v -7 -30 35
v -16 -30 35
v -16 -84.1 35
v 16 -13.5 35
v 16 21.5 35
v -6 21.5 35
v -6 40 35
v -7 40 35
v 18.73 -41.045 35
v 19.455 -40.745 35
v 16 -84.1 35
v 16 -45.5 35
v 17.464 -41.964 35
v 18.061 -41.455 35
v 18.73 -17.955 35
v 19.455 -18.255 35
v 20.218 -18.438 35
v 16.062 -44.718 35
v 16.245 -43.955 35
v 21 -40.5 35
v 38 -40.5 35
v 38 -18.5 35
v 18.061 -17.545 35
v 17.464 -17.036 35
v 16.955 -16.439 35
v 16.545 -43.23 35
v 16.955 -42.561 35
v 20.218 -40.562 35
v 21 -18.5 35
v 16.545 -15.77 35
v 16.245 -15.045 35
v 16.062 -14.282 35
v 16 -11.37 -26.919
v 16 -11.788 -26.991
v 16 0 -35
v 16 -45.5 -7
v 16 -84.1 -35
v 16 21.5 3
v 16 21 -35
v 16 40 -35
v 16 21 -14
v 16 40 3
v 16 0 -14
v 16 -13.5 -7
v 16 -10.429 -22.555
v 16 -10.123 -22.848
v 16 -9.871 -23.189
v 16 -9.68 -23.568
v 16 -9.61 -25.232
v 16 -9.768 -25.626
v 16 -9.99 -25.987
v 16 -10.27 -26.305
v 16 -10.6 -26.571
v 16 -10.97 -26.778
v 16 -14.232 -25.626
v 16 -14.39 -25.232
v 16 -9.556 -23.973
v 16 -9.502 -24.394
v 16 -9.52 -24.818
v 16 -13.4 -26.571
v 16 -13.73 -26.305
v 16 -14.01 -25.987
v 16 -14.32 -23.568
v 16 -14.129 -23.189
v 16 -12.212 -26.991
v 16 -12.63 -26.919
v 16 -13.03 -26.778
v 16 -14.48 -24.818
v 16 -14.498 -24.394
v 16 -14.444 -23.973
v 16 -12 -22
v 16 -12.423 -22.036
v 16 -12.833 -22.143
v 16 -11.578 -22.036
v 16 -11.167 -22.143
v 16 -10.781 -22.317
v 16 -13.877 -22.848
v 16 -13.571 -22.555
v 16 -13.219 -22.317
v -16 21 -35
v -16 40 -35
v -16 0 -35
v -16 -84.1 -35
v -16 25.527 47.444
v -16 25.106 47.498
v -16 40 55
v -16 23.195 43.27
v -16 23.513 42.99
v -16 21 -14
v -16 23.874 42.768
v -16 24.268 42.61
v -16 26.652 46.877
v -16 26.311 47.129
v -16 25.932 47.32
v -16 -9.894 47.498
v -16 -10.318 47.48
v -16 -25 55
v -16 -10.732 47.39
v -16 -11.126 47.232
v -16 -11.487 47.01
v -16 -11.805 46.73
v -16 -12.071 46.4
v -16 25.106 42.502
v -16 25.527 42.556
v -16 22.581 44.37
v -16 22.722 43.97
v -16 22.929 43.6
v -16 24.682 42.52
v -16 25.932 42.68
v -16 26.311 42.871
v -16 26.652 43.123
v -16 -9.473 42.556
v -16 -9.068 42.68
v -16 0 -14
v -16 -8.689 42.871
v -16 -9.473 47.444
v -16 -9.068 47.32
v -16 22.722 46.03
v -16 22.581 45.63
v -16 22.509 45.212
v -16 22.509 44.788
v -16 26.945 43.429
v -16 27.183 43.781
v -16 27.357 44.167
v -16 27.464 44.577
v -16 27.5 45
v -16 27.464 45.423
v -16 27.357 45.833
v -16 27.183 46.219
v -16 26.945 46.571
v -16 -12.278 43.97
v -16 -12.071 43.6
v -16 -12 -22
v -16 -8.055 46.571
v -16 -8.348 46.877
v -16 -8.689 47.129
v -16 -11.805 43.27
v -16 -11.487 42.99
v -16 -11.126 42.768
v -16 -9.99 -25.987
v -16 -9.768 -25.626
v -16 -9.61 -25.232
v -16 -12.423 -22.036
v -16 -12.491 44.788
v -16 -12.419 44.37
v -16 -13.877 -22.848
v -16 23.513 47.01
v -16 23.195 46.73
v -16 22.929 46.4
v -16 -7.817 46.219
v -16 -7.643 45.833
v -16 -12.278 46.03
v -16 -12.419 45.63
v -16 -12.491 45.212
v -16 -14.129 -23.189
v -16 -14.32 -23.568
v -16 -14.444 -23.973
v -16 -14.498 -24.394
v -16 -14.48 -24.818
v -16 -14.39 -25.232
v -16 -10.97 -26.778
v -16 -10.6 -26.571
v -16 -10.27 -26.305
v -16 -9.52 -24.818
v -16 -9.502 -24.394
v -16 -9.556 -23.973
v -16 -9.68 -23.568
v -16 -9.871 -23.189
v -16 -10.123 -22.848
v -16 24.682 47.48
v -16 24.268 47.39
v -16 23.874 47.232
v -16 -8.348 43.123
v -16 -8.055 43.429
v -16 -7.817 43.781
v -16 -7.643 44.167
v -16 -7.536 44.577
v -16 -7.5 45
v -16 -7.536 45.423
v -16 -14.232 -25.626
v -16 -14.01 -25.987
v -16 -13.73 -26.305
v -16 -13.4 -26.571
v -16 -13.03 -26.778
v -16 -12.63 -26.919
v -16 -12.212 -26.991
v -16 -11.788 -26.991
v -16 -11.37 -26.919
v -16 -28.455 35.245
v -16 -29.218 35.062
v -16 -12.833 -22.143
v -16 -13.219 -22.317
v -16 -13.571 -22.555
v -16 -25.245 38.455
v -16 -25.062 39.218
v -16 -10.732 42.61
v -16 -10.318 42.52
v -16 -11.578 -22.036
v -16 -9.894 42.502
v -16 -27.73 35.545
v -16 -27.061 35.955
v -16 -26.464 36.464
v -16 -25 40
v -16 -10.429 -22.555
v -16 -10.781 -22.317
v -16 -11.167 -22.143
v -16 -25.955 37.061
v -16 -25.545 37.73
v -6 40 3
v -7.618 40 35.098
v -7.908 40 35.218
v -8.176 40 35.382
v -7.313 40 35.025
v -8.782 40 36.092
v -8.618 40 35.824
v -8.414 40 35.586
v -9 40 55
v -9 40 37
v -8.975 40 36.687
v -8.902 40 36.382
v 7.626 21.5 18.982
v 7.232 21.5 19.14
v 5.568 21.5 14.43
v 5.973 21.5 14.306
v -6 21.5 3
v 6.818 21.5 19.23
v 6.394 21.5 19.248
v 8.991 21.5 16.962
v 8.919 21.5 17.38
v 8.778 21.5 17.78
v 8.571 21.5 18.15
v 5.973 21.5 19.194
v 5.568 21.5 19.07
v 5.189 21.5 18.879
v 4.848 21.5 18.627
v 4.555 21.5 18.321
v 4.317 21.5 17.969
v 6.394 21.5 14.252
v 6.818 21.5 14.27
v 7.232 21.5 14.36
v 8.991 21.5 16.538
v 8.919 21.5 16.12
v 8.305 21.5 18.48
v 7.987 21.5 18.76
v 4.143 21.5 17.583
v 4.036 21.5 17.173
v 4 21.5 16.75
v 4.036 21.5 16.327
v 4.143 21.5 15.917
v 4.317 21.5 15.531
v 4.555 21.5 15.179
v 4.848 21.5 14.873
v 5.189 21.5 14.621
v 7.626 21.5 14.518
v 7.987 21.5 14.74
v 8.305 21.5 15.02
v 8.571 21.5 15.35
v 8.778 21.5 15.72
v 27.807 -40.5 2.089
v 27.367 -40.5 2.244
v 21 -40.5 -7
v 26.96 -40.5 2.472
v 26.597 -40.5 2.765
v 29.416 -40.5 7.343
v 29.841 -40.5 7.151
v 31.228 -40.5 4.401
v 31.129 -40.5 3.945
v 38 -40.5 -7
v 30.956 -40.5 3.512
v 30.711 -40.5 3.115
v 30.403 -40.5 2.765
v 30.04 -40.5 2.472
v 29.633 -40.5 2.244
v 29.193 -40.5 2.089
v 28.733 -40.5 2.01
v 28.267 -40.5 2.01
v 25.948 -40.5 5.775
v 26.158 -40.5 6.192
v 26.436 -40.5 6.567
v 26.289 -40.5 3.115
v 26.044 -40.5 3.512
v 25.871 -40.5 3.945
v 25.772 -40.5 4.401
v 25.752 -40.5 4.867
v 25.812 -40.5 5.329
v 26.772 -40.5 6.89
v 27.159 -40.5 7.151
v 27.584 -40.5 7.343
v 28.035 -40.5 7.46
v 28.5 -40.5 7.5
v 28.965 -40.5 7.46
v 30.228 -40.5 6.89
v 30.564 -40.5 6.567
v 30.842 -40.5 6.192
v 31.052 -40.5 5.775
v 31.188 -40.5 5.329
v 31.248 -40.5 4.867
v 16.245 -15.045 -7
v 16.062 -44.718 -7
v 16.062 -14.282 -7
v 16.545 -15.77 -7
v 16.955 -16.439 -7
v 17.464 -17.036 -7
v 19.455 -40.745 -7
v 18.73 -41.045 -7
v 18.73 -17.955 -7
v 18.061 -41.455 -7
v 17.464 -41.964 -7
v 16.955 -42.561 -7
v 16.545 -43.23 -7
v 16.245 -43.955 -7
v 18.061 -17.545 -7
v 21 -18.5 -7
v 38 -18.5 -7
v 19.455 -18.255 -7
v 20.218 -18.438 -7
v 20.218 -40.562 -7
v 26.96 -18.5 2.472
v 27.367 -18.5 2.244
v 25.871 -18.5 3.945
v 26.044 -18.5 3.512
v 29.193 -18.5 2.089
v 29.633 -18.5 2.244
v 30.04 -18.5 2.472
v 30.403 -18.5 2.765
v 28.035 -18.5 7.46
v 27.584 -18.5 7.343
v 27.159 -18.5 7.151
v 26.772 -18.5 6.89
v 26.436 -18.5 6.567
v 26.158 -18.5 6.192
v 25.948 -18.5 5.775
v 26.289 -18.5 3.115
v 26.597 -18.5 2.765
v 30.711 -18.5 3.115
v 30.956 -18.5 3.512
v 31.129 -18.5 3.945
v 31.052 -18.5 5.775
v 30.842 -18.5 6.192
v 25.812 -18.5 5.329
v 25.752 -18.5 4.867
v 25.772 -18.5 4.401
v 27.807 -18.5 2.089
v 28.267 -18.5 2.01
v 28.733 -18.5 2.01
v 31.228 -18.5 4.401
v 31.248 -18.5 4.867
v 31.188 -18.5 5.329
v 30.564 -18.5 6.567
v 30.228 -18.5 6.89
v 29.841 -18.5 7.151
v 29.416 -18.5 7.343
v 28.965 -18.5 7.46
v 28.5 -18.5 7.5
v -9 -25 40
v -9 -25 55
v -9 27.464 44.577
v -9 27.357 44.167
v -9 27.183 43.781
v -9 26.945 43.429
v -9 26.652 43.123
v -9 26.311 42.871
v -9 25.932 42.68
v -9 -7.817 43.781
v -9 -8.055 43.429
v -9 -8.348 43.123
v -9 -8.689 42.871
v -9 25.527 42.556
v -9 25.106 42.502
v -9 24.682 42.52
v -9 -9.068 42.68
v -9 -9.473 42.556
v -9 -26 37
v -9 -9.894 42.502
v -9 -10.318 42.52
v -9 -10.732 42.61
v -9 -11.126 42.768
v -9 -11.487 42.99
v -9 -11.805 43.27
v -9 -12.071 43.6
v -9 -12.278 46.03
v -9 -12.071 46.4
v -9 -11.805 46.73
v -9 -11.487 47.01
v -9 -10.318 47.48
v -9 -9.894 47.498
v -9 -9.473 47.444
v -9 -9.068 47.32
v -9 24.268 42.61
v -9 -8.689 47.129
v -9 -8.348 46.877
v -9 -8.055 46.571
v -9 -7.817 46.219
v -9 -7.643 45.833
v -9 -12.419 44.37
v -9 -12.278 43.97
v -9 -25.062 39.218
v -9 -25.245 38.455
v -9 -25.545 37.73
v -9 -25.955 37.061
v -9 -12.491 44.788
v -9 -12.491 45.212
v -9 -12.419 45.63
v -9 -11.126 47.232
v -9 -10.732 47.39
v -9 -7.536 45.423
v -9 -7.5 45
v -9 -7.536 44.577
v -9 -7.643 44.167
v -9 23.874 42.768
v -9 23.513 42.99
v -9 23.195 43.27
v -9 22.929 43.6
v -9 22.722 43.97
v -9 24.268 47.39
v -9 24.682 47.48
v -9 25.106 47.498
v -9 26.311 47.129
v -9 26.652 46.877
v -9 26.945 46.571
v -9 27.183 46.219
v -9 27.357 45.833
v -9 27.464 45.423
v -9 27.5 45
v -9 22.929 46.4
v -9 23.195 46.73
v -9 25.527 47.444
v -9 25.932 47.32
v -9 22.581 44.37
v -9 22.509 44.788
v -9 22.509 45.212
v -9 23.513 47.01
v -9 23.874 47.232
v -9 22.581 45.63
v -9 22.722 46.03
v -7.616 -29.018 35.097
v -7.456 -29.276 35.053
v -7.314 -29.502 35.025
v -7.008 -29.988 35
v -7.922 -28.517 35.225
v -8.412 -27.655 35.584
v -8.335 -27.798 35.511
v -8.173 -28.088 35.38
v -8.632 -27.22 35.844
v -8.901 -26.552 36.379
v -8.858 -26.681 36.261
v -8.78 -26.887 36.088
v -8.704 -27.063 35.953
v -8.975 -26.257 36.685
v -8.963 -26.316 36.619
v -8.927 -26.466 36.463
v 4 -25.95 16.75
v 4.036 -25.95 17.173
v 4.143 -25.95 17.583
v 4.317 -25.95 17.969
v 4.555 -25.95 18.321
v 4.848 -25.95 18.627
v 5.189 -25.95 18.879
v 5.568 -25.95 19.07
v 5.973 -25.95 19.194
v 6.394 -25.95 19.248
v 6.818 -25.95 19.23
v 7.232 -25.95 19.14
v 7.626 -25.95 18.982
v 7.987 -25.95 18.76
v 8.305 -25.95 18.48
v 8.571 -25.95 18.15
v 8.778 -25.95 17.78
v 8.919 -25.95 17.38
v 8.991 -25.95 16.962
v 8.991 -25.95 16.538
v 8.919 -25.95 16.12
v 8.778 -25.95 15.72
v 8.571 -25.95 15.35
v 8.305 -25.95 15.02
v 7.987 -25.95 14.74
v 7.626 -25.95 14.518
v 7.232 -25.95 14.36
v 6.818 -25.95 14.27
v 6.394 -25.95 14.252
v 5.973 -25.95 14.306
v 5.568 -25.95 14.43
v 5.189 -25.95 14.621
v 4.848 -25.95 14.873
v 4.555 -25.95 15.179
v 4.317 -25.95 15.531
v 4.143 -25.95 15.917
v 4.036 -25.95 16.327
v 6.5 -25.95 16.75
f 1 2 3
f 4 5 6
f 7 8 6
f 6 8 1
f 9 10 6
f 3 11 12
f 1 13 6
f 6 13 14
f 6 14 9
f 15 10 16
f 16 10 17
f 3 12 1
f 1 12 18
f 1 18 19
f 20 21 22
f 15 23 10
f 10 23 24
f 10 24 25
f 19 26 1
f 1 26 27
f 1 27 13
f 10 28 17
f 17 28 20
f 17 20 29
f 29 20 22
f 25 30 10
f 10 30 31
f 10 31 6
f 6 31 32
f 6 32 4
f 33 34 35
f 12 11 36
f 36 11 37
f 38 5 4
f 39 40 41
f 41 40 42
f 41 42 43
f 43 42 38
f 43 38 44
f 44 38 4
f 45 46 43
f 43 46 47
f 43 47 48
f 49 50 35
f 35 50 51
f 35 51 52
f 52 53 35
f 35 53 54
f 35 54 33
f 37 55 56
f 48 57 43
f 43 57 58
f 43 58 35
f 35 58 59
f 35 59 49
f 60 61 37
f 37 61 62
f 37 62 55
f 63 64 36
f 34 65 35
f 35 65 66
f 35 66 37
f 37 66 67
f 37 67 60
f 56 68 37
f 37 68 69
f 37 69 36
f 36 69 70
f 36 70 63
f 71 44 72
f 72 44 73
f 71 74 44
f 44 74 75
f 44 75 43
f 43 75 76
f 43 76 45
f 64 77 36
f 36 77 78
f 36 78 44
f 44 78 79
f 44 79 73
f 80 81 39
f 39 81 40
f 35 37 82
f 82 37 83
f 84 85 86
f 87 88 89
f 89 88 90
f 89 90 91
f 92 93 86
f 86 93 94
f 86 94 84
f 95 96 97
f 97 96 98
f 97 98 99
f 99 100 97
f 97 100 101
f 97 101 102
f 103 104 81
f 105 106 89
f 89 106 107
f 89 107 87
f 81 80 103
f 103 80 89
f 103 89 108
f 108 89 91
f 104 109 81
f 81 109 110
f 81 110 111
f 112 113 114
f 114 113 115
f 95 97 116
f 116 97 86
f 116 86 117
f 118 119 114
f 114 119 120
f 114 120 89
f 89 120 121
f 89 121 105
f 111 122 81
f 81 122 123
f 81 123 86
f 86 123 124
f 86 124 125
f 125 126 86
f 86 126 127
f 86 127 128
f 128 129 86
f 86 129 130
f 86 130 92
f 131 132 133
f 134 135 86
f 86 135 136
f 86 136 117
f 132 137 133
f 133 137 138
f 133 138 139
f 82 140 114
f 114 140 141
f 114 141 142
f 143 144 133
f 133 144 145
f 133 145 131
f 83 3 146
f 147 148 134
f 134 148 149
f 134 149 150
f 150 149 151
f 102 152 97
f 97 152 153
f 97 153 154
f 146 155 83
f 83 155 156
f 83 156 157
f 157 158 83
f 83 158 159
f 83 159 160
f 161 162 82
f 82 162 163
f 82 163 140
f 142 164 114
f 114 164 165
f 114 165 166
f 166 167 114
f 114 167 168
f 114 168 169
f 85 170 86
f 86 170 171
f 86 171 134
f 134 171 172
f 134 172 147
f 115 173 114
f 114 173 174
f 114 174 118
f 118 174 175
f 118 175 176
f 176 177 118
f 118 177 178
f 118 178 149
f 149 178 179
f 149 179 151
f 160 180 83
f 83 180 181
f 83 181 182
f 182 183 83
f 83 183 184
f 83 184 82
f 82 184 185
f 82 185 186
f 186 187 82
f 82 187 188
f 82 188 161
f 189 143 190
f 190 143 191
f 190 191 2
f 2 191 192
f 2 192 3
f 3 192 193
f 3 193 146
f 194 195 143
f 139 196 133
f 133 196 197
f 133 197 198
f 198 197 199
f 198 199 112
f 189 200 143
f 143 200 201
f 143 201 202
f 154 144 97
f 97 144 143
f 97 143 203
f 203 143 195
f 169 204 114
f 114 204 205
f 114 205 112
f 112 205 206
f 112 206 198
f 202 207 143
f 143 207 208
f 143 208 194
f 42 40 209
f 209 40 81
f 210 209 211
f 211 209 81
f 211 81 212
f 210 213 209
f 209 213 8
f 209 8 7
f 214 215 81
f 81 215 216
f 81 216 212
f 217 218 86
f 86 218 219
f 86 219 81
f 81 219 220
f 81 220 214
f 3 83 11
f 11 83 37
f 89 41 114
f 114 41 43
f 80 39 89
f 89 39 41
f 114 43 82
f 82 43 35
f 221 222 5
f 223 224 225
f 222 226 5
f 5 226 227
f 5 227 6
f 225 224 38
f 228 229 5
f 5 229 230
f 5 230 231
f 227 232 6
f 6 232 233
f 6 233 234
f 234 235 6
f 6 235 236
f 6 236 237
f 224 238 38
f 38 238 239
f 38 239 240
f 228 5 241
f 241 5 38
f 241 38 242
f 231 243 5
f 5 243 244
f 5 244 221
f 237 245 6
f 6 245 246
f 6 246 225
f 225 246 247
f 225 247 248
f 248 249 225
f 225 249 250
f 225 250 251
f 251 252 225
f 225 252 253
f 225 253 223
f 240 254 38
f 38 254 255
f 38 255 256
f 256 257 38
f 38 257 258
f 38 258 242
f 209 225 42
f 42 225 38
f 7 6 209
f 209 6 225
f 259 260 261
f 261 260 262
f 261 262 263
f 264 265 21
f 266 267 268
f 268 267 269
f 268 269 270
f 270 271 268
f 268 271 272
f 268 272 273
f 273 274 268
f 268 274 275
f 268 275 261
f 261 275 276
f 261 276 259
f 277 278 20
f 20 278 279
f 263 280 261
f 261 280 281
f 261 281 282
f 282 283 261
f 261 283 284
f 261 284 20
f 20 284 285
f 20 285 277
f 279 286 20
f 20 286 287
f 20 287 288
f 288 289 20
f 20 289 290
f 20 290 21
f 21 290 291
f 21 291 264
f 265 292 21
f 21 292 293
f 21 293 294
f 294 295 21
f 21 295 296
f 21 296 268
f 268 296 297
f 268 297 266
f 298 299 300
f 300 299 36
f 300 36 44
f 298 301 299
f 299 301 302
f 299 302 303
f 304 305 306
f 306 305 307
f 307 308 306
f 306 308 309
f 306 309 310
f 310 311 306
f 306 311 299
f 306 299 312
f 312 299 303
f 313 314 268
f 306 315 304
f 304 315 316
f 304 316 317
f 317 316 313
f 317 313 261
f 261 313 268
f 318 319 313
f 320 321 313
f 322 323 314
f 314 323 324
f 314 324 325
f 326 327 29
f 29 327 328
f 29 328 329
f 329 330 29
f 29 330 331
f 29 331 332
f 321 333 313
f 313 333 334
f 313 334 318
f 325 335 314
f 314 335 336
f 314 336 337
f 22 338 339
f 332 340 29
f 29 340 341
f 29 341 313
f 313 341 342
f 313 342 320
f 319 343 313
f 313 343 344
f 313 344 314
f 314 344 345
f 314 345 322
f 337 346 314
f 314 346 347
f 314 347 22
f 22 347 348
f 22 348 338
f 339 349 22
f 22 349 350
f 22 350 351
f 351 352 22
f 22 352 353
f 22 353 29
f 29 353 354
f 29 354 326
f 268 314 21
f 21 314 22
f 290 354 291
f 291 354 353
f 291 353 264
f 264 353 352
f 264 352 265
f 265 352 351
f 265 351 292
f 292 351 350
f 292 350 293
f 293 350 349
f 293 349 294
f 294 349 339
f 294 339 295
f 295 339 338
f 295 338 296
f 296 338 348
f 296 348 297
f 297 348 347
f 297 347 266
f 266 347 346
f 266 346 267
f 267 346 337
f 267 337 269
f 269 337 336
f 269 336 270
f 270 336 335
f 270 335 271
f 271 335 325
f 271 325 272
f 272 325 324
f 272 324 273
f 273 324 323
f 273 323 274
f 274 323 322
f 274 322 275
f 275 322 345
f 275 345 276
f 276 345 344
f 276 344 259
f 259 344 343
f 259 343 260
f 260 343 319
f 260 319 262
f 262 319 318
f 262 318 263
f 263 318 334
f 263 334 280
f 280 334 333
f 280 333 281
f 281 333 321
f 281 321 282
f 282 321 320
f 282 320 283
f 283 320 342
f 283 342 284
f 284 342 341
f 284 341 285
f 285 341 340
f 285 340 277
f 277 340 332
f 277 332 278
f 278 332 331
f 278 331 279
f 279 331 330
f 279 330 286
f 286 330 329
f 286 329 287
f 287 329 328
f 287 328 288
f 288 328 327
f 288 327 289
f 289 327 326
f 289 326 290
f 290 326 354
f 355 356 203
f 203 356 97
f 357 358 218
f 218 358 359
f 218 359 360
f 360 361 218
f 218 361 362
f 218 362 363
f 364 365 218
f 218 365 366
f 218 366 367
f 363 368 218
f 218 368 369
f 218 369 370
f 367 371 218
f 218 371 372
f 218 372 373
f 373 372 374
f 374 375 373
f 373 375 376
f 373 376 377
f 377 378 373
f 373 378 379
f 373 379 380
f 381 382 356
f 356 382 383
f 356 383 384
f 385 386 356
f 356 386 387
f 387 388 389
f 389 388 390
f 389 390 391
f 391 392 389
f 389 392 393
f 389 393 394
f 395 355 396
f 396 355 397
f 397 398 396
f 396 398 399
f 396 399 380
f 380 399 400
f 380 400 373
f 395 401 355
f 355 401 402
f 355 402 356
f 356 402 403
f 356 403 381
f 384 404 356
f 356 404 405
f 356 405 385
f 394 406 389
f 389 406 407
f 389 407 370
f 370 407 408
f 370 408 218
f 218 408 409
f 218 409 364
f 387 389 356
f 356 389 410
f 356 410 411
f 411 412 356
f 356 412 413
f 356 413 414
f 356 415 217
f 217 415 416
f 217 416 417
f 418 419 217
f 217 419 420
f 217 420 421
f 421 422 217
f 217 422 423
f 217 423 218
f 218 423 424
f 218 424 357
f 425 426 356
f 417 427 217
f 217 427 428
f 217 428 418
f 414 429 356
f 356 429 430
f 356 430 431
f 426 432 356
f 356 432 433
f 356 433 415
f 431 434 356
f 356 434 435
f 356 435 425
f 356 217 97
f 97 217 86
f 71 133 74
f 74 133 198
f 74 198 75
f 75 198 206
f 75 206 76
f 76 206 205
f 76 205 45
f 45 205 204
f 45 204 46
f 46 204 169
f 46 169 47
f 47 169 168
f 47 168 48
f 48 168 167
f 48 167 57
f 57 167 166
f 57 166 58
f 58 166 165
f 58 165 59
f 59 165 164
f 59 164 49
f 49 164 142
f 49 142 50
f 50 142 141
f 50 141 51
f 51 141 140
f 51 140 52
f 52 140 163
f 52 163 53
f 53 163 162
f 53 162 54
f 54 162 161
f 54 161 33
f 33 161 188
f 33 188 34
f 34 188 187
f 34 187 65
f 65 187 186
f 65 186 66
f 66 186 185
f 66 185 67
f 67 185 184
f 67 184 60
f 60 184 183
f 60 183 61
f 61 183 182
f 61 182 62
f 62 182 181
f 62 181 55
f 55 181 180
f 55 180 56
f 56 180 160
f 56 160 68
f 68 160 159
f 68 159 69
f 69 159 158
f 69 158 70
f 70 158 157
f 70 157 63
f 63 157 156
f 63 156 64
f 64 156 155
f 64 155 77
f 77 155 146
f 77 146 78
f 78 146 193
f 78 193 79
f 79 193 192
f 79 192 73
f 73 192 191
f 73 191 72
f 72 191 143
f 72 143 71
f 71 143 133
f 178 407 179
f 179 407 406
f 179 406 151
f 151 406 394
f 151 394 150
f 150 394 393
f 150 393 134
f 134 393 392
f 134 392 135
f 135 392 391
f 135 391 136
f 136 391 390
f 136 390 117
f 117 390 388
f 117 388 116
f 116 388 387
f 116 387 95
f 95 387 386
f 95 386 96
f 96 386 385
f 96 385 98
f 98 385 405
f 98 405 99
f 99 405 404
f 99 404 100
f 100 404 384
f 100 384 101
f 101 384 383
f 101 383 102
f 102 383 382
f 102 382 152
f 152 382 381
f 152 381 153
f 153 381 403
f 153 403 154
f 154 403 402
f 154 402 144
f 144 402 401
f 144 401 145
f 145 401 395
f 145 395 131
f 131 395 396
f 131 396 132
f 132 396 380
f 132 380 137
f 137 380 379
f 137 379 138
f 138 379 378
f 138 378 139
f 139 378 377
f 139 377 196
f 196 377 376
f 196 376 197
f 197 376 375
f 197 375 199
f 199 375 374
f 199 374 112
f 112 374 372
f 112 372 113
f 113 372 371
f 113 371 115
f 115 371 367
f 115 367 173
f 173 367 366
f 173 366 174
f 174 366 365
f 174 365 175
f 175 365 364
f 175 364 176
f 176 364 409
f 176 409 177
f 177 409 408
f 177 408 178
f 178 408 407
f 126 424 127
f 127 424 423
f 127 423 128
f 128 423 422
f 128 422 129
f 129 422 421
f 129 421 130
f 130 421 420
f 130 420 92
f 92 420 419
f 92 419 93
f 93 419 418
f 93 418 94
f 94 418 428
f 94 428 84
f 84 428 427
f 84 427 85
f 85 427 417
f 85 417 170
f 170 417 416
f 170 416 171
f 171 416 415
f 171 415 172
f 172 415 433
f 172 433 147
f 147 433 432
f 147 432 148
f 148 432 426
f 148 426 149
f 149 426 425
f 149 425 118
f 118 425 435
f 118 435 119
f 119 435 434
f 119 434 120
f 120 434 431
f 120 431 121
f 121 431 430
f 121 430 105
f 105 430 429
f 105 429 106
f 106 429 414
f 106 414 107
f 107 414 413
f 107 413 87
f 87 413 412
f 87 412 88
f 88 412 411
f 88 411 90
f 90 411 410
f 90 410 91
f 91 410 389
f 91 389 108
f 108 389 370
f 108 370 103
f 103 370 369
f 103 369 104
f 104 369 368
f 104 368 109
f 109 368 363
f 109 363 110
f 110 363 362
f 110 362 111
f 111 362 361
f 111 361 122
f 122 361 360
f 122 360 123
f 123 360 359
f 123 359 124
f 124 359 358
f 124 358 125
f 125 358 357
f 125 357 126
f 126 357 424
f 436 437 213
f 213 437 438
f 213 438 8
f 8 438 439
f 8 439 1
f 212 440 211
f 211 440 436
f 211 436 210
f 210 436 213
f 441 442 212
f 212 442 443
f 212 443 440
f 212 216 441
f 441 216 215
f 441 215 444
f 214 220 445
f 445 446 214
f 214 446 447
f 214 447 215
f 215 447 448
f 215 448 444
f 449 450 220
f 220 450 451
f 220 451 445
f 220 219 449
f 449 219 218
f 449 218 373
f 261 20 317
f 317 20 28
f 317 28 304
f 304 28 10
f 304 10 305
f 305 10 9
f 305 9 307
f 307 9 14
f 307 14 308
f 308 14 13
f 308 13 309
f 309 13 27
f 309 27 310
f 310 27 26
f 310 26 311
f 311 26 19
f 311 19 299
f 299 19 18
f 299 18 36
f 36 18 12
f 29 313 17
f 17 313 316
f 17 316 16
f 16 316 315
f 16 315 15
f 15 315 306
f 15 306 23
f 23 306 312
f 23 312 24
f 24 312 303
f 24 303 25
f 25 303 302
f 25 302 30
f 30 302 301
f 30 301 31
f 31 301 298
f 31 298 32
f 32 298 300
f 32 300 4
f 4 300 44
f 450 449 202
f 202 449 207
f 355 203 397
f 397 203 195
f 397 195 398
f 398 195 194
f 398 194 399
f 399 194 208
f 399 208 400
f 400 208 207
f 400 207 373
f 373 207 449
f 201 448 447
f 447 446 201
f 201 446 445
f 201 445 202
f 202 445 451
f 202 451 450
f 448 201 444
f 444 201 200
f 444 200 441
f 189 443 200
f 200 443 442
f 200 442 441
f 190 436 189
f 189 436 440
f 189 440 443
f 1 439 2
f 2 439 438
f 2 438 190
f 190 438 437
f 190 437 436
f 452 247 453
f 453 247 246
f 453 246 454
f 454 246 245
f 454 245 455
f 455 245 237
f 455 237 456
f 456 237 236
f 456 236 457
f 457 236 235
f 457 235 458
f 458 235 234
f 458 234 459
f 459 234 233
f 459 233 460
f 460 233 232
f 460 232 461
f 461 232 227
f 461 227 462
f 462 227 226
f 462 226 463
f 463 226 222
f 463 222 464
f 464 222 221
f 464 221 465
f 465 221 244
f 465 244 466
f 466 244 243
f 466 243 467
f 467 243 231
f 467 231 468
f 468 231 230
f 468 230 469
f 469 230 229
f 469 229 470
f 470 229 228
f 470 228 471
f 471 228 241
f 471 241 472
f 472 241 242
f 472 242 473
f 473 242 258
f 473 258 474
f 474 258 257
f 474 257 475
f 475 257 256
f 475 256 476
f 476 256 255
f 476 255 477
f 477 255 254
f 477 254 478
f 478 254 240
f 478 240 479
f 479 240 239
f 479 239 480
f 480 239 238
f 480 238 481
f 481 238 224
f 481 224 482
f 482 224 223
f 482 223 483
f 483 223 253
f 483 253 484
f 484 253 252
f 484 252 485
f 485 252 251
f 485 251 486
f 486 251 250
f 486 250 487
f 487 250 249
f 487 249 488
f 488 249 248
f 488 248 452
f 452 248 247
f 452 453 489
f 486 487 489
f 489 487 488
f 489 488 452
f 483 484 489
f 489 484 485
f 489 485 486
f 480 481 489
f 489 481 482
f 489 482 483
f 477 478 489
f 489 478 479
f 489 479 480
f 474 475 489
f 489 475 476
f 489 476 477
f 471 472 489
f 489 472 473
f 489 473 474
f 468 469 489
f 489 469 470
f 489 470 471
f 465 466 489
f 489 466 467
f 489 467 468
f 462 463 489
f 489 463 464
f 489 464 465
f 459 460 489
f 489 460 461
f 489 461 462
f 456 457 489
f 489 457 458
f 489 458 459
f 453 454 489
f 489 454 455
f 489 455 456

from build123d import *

# Parameters (mm, degrees)
SKETCH1_W                = 32
SKETCH1_H                = 70
BOSS_EXTRUDE1_DEPTH      = 40
BOSS_EXTRUDE1_DEPTH_BACK = 84.1
SKETCH2_W                = 21
SKETCH2_H                = 21
CUT_EXTRUDE1_DEPTH       = 17
CUT_EXTRUDE1_DEPTH_BACK  = 17
CUT_EXTRUDE2_START       = -18.5
SKETCH3_W                = 22
SKETCH3_H                = 32
CUT_EXTRUDE2_DEPTH       = 18.5
SKETCH4_W                = 42
SKETCH4_H                = 22
BOSS_EXTRUDE2_DEPTH      = 22
SKETCH5_R                = 2.75
CUT_EXTRUDE3_DEPTH       = 66.6
SKETCH6_W                = 7
SKETCH6_H                = 65
BOSS_EXTRUDE3_DEPTH      = 20
SKETCH7_R                = 2.5
CUT_EXTRUDE4_DEPTH       = 17
CUT_EXTRUDE4_DEPTH_BACK  = 39
SKETCH8_R                = 2.5
CUT_EXTRUDE5_DEPTH       = 8
FILLET1_R                = 2
FILLET2_R                = 5
SKETCH9_R                = 2.5
CUT_EXTRUDE6_DEPTH       = 47.45


with BuildPart() as part:
    # Sketch1 → Boss-Extrude1 (new body, two sides)
    with BuildSketch(Plane(origin=(0, 0, 0), x_dir=(1, 0, 0), z_dir=(0, 1, 0))) as boss_extrude1_sk:
        Rectangle(SKETCH1_W, SKETCH1_H)
    extrude(amount=BOSS_EXTRUDE1_DEPTH)
    extrude(boss_extrude1_sk.sketch, amount=-BOSS_EXTRUDE1_DEPTH_BACK)

    # Sketch2 → Cut-Extrude1 (cut, two sides)
    with BuildSketch(Plane(origin=(0, 0, 0), x_dir=(0, 0, -1), z_dir=(1, 0, 0))) as cut_extrude1_sk:
        with Locations((24.5, 10.5)):
            Rectangle(SKETCH2_W, SKETCH2_H)
    extrude(amount=CUT_EXTRUDE1_DEPTH, mode=Mode.SUBTRACT)
    extrude(cut_extrude1_sk.sketch, amount=-CUT_EXTRUDE1_DEPTH_BACK, mode=Mode.SUBTRACT)

    # Sketch3 → Cut-Extrude2 (cut)
    with BuildSketch(Plane(origin=(0, 40, 0), x_dir=(1, 0, 0), z_dir=(0, 1, 0)).offset(CUT_EXTRUDE2_START)):
        with Locations((5, -19)):
            Rectangle(SKETCH3_W, SKETCH3_H)
    extrude(amount=CUT_EXTRUDE2_DEPTH, mode=Mode.SUBTRACT)

    # Sketch4 → Boss-Extrude2 (add)
    with BuildSketch(Plane(origin=(16, 0, 0), x_dir=(0, 0, -1), z_dir=(1, 0, 0))):
        with Locations((-14, -29.5)):
            Rectangle(SKETCH4_W, SKETCH4_H)
    extrude(amount=BOSS_EXTRUDE2_DEPTH)

    # Sketch5 → Cut-Extrude3 (cut, through all)
    with BuildSketch(Plane(origin=(0, -18.5, 0), x_dir=(1, 0, 0), z_dir=(0, 1, 0))):
        with Locations((28.5, -4.75)):
            Circle(SKETCH5_R)
    extrude(amount=-CUT_EXTRUDE3_DEPTH, mode=Mode.SUBTRACT)

    # Sketch6 → Boss-Extrude3 (add)
    with BuildSketch(Plane.XY.offset(35)):
        with Locations((-12.5, 7.5)):
            Rectangle(SKETCH6_W, SKETCH6_H)
    extrude(amount=BOSS_EXTRUDE3_DEPTH)

    # Sketch7 → Cut-Extrude4 (cut, two sides)
    with BuildSketch(Plane.ZY) as cut_extrude4_sk:
        with Locations((-24.5, -12)):
            Circle(SKETCH7_R)
    extrude(amount=CUT_EXTRUDE4_DEPTH, mode=Mode.SUBTRACT)
    extrude(cut_extrude4_sk.sketch, amount=-CUT_EXTRUDE4_DEPTH_BACK, mode=Mode.SUBTRACT)

    # Sketch8 → Cut-Extrude5 (cut, through all)
    with BuildSketch(Plane(origin=(-9, 0, 0), x_dir=(0, 0, -1), z_dir=(1, 0, 0))):
        with Locations((-45, 25)):
            Circle(SKETCH8_R)
        with Locations((-45, -10)):
            Circle(SKETCH8_R)
    extrude(amount=-CUT_EXTRUDE5_DEPTH, mode=Mode.SUBTRACT)

    # Fillet1
    fillet1_edges = [part.edges().sort_by_distance(p)[0] for p in [
        (-9, 7.5, 35),
    ]]
    fillet(fillet1_edges, radius=FILLET1_R)

    # Fillet2
    fillet2_edges = [part.edges().sort_by_distance(p)[0] for p in [
        (-12.5, -25, 35),
        (16, -40.5, 14),
        (16, -18.5, 14),
    ]]
    fillet(fillet2_edges, radius=FILLET2_R)

    # Sketch9 → Cut-Extrude6 (cut)
    with BuildSketch(Plane(origin=(0, 21.5, 0), x_dir=(1, 0, 0), z_dir=(0, 1, 0))):
        with Locations((6.5, -16.75)):
            Circle(SKETCH9_R)
    extrude(amount=-CUT_EXTRUDE6_DEPTH, mode=Mode.SUBTRACT)


solid = part.part
